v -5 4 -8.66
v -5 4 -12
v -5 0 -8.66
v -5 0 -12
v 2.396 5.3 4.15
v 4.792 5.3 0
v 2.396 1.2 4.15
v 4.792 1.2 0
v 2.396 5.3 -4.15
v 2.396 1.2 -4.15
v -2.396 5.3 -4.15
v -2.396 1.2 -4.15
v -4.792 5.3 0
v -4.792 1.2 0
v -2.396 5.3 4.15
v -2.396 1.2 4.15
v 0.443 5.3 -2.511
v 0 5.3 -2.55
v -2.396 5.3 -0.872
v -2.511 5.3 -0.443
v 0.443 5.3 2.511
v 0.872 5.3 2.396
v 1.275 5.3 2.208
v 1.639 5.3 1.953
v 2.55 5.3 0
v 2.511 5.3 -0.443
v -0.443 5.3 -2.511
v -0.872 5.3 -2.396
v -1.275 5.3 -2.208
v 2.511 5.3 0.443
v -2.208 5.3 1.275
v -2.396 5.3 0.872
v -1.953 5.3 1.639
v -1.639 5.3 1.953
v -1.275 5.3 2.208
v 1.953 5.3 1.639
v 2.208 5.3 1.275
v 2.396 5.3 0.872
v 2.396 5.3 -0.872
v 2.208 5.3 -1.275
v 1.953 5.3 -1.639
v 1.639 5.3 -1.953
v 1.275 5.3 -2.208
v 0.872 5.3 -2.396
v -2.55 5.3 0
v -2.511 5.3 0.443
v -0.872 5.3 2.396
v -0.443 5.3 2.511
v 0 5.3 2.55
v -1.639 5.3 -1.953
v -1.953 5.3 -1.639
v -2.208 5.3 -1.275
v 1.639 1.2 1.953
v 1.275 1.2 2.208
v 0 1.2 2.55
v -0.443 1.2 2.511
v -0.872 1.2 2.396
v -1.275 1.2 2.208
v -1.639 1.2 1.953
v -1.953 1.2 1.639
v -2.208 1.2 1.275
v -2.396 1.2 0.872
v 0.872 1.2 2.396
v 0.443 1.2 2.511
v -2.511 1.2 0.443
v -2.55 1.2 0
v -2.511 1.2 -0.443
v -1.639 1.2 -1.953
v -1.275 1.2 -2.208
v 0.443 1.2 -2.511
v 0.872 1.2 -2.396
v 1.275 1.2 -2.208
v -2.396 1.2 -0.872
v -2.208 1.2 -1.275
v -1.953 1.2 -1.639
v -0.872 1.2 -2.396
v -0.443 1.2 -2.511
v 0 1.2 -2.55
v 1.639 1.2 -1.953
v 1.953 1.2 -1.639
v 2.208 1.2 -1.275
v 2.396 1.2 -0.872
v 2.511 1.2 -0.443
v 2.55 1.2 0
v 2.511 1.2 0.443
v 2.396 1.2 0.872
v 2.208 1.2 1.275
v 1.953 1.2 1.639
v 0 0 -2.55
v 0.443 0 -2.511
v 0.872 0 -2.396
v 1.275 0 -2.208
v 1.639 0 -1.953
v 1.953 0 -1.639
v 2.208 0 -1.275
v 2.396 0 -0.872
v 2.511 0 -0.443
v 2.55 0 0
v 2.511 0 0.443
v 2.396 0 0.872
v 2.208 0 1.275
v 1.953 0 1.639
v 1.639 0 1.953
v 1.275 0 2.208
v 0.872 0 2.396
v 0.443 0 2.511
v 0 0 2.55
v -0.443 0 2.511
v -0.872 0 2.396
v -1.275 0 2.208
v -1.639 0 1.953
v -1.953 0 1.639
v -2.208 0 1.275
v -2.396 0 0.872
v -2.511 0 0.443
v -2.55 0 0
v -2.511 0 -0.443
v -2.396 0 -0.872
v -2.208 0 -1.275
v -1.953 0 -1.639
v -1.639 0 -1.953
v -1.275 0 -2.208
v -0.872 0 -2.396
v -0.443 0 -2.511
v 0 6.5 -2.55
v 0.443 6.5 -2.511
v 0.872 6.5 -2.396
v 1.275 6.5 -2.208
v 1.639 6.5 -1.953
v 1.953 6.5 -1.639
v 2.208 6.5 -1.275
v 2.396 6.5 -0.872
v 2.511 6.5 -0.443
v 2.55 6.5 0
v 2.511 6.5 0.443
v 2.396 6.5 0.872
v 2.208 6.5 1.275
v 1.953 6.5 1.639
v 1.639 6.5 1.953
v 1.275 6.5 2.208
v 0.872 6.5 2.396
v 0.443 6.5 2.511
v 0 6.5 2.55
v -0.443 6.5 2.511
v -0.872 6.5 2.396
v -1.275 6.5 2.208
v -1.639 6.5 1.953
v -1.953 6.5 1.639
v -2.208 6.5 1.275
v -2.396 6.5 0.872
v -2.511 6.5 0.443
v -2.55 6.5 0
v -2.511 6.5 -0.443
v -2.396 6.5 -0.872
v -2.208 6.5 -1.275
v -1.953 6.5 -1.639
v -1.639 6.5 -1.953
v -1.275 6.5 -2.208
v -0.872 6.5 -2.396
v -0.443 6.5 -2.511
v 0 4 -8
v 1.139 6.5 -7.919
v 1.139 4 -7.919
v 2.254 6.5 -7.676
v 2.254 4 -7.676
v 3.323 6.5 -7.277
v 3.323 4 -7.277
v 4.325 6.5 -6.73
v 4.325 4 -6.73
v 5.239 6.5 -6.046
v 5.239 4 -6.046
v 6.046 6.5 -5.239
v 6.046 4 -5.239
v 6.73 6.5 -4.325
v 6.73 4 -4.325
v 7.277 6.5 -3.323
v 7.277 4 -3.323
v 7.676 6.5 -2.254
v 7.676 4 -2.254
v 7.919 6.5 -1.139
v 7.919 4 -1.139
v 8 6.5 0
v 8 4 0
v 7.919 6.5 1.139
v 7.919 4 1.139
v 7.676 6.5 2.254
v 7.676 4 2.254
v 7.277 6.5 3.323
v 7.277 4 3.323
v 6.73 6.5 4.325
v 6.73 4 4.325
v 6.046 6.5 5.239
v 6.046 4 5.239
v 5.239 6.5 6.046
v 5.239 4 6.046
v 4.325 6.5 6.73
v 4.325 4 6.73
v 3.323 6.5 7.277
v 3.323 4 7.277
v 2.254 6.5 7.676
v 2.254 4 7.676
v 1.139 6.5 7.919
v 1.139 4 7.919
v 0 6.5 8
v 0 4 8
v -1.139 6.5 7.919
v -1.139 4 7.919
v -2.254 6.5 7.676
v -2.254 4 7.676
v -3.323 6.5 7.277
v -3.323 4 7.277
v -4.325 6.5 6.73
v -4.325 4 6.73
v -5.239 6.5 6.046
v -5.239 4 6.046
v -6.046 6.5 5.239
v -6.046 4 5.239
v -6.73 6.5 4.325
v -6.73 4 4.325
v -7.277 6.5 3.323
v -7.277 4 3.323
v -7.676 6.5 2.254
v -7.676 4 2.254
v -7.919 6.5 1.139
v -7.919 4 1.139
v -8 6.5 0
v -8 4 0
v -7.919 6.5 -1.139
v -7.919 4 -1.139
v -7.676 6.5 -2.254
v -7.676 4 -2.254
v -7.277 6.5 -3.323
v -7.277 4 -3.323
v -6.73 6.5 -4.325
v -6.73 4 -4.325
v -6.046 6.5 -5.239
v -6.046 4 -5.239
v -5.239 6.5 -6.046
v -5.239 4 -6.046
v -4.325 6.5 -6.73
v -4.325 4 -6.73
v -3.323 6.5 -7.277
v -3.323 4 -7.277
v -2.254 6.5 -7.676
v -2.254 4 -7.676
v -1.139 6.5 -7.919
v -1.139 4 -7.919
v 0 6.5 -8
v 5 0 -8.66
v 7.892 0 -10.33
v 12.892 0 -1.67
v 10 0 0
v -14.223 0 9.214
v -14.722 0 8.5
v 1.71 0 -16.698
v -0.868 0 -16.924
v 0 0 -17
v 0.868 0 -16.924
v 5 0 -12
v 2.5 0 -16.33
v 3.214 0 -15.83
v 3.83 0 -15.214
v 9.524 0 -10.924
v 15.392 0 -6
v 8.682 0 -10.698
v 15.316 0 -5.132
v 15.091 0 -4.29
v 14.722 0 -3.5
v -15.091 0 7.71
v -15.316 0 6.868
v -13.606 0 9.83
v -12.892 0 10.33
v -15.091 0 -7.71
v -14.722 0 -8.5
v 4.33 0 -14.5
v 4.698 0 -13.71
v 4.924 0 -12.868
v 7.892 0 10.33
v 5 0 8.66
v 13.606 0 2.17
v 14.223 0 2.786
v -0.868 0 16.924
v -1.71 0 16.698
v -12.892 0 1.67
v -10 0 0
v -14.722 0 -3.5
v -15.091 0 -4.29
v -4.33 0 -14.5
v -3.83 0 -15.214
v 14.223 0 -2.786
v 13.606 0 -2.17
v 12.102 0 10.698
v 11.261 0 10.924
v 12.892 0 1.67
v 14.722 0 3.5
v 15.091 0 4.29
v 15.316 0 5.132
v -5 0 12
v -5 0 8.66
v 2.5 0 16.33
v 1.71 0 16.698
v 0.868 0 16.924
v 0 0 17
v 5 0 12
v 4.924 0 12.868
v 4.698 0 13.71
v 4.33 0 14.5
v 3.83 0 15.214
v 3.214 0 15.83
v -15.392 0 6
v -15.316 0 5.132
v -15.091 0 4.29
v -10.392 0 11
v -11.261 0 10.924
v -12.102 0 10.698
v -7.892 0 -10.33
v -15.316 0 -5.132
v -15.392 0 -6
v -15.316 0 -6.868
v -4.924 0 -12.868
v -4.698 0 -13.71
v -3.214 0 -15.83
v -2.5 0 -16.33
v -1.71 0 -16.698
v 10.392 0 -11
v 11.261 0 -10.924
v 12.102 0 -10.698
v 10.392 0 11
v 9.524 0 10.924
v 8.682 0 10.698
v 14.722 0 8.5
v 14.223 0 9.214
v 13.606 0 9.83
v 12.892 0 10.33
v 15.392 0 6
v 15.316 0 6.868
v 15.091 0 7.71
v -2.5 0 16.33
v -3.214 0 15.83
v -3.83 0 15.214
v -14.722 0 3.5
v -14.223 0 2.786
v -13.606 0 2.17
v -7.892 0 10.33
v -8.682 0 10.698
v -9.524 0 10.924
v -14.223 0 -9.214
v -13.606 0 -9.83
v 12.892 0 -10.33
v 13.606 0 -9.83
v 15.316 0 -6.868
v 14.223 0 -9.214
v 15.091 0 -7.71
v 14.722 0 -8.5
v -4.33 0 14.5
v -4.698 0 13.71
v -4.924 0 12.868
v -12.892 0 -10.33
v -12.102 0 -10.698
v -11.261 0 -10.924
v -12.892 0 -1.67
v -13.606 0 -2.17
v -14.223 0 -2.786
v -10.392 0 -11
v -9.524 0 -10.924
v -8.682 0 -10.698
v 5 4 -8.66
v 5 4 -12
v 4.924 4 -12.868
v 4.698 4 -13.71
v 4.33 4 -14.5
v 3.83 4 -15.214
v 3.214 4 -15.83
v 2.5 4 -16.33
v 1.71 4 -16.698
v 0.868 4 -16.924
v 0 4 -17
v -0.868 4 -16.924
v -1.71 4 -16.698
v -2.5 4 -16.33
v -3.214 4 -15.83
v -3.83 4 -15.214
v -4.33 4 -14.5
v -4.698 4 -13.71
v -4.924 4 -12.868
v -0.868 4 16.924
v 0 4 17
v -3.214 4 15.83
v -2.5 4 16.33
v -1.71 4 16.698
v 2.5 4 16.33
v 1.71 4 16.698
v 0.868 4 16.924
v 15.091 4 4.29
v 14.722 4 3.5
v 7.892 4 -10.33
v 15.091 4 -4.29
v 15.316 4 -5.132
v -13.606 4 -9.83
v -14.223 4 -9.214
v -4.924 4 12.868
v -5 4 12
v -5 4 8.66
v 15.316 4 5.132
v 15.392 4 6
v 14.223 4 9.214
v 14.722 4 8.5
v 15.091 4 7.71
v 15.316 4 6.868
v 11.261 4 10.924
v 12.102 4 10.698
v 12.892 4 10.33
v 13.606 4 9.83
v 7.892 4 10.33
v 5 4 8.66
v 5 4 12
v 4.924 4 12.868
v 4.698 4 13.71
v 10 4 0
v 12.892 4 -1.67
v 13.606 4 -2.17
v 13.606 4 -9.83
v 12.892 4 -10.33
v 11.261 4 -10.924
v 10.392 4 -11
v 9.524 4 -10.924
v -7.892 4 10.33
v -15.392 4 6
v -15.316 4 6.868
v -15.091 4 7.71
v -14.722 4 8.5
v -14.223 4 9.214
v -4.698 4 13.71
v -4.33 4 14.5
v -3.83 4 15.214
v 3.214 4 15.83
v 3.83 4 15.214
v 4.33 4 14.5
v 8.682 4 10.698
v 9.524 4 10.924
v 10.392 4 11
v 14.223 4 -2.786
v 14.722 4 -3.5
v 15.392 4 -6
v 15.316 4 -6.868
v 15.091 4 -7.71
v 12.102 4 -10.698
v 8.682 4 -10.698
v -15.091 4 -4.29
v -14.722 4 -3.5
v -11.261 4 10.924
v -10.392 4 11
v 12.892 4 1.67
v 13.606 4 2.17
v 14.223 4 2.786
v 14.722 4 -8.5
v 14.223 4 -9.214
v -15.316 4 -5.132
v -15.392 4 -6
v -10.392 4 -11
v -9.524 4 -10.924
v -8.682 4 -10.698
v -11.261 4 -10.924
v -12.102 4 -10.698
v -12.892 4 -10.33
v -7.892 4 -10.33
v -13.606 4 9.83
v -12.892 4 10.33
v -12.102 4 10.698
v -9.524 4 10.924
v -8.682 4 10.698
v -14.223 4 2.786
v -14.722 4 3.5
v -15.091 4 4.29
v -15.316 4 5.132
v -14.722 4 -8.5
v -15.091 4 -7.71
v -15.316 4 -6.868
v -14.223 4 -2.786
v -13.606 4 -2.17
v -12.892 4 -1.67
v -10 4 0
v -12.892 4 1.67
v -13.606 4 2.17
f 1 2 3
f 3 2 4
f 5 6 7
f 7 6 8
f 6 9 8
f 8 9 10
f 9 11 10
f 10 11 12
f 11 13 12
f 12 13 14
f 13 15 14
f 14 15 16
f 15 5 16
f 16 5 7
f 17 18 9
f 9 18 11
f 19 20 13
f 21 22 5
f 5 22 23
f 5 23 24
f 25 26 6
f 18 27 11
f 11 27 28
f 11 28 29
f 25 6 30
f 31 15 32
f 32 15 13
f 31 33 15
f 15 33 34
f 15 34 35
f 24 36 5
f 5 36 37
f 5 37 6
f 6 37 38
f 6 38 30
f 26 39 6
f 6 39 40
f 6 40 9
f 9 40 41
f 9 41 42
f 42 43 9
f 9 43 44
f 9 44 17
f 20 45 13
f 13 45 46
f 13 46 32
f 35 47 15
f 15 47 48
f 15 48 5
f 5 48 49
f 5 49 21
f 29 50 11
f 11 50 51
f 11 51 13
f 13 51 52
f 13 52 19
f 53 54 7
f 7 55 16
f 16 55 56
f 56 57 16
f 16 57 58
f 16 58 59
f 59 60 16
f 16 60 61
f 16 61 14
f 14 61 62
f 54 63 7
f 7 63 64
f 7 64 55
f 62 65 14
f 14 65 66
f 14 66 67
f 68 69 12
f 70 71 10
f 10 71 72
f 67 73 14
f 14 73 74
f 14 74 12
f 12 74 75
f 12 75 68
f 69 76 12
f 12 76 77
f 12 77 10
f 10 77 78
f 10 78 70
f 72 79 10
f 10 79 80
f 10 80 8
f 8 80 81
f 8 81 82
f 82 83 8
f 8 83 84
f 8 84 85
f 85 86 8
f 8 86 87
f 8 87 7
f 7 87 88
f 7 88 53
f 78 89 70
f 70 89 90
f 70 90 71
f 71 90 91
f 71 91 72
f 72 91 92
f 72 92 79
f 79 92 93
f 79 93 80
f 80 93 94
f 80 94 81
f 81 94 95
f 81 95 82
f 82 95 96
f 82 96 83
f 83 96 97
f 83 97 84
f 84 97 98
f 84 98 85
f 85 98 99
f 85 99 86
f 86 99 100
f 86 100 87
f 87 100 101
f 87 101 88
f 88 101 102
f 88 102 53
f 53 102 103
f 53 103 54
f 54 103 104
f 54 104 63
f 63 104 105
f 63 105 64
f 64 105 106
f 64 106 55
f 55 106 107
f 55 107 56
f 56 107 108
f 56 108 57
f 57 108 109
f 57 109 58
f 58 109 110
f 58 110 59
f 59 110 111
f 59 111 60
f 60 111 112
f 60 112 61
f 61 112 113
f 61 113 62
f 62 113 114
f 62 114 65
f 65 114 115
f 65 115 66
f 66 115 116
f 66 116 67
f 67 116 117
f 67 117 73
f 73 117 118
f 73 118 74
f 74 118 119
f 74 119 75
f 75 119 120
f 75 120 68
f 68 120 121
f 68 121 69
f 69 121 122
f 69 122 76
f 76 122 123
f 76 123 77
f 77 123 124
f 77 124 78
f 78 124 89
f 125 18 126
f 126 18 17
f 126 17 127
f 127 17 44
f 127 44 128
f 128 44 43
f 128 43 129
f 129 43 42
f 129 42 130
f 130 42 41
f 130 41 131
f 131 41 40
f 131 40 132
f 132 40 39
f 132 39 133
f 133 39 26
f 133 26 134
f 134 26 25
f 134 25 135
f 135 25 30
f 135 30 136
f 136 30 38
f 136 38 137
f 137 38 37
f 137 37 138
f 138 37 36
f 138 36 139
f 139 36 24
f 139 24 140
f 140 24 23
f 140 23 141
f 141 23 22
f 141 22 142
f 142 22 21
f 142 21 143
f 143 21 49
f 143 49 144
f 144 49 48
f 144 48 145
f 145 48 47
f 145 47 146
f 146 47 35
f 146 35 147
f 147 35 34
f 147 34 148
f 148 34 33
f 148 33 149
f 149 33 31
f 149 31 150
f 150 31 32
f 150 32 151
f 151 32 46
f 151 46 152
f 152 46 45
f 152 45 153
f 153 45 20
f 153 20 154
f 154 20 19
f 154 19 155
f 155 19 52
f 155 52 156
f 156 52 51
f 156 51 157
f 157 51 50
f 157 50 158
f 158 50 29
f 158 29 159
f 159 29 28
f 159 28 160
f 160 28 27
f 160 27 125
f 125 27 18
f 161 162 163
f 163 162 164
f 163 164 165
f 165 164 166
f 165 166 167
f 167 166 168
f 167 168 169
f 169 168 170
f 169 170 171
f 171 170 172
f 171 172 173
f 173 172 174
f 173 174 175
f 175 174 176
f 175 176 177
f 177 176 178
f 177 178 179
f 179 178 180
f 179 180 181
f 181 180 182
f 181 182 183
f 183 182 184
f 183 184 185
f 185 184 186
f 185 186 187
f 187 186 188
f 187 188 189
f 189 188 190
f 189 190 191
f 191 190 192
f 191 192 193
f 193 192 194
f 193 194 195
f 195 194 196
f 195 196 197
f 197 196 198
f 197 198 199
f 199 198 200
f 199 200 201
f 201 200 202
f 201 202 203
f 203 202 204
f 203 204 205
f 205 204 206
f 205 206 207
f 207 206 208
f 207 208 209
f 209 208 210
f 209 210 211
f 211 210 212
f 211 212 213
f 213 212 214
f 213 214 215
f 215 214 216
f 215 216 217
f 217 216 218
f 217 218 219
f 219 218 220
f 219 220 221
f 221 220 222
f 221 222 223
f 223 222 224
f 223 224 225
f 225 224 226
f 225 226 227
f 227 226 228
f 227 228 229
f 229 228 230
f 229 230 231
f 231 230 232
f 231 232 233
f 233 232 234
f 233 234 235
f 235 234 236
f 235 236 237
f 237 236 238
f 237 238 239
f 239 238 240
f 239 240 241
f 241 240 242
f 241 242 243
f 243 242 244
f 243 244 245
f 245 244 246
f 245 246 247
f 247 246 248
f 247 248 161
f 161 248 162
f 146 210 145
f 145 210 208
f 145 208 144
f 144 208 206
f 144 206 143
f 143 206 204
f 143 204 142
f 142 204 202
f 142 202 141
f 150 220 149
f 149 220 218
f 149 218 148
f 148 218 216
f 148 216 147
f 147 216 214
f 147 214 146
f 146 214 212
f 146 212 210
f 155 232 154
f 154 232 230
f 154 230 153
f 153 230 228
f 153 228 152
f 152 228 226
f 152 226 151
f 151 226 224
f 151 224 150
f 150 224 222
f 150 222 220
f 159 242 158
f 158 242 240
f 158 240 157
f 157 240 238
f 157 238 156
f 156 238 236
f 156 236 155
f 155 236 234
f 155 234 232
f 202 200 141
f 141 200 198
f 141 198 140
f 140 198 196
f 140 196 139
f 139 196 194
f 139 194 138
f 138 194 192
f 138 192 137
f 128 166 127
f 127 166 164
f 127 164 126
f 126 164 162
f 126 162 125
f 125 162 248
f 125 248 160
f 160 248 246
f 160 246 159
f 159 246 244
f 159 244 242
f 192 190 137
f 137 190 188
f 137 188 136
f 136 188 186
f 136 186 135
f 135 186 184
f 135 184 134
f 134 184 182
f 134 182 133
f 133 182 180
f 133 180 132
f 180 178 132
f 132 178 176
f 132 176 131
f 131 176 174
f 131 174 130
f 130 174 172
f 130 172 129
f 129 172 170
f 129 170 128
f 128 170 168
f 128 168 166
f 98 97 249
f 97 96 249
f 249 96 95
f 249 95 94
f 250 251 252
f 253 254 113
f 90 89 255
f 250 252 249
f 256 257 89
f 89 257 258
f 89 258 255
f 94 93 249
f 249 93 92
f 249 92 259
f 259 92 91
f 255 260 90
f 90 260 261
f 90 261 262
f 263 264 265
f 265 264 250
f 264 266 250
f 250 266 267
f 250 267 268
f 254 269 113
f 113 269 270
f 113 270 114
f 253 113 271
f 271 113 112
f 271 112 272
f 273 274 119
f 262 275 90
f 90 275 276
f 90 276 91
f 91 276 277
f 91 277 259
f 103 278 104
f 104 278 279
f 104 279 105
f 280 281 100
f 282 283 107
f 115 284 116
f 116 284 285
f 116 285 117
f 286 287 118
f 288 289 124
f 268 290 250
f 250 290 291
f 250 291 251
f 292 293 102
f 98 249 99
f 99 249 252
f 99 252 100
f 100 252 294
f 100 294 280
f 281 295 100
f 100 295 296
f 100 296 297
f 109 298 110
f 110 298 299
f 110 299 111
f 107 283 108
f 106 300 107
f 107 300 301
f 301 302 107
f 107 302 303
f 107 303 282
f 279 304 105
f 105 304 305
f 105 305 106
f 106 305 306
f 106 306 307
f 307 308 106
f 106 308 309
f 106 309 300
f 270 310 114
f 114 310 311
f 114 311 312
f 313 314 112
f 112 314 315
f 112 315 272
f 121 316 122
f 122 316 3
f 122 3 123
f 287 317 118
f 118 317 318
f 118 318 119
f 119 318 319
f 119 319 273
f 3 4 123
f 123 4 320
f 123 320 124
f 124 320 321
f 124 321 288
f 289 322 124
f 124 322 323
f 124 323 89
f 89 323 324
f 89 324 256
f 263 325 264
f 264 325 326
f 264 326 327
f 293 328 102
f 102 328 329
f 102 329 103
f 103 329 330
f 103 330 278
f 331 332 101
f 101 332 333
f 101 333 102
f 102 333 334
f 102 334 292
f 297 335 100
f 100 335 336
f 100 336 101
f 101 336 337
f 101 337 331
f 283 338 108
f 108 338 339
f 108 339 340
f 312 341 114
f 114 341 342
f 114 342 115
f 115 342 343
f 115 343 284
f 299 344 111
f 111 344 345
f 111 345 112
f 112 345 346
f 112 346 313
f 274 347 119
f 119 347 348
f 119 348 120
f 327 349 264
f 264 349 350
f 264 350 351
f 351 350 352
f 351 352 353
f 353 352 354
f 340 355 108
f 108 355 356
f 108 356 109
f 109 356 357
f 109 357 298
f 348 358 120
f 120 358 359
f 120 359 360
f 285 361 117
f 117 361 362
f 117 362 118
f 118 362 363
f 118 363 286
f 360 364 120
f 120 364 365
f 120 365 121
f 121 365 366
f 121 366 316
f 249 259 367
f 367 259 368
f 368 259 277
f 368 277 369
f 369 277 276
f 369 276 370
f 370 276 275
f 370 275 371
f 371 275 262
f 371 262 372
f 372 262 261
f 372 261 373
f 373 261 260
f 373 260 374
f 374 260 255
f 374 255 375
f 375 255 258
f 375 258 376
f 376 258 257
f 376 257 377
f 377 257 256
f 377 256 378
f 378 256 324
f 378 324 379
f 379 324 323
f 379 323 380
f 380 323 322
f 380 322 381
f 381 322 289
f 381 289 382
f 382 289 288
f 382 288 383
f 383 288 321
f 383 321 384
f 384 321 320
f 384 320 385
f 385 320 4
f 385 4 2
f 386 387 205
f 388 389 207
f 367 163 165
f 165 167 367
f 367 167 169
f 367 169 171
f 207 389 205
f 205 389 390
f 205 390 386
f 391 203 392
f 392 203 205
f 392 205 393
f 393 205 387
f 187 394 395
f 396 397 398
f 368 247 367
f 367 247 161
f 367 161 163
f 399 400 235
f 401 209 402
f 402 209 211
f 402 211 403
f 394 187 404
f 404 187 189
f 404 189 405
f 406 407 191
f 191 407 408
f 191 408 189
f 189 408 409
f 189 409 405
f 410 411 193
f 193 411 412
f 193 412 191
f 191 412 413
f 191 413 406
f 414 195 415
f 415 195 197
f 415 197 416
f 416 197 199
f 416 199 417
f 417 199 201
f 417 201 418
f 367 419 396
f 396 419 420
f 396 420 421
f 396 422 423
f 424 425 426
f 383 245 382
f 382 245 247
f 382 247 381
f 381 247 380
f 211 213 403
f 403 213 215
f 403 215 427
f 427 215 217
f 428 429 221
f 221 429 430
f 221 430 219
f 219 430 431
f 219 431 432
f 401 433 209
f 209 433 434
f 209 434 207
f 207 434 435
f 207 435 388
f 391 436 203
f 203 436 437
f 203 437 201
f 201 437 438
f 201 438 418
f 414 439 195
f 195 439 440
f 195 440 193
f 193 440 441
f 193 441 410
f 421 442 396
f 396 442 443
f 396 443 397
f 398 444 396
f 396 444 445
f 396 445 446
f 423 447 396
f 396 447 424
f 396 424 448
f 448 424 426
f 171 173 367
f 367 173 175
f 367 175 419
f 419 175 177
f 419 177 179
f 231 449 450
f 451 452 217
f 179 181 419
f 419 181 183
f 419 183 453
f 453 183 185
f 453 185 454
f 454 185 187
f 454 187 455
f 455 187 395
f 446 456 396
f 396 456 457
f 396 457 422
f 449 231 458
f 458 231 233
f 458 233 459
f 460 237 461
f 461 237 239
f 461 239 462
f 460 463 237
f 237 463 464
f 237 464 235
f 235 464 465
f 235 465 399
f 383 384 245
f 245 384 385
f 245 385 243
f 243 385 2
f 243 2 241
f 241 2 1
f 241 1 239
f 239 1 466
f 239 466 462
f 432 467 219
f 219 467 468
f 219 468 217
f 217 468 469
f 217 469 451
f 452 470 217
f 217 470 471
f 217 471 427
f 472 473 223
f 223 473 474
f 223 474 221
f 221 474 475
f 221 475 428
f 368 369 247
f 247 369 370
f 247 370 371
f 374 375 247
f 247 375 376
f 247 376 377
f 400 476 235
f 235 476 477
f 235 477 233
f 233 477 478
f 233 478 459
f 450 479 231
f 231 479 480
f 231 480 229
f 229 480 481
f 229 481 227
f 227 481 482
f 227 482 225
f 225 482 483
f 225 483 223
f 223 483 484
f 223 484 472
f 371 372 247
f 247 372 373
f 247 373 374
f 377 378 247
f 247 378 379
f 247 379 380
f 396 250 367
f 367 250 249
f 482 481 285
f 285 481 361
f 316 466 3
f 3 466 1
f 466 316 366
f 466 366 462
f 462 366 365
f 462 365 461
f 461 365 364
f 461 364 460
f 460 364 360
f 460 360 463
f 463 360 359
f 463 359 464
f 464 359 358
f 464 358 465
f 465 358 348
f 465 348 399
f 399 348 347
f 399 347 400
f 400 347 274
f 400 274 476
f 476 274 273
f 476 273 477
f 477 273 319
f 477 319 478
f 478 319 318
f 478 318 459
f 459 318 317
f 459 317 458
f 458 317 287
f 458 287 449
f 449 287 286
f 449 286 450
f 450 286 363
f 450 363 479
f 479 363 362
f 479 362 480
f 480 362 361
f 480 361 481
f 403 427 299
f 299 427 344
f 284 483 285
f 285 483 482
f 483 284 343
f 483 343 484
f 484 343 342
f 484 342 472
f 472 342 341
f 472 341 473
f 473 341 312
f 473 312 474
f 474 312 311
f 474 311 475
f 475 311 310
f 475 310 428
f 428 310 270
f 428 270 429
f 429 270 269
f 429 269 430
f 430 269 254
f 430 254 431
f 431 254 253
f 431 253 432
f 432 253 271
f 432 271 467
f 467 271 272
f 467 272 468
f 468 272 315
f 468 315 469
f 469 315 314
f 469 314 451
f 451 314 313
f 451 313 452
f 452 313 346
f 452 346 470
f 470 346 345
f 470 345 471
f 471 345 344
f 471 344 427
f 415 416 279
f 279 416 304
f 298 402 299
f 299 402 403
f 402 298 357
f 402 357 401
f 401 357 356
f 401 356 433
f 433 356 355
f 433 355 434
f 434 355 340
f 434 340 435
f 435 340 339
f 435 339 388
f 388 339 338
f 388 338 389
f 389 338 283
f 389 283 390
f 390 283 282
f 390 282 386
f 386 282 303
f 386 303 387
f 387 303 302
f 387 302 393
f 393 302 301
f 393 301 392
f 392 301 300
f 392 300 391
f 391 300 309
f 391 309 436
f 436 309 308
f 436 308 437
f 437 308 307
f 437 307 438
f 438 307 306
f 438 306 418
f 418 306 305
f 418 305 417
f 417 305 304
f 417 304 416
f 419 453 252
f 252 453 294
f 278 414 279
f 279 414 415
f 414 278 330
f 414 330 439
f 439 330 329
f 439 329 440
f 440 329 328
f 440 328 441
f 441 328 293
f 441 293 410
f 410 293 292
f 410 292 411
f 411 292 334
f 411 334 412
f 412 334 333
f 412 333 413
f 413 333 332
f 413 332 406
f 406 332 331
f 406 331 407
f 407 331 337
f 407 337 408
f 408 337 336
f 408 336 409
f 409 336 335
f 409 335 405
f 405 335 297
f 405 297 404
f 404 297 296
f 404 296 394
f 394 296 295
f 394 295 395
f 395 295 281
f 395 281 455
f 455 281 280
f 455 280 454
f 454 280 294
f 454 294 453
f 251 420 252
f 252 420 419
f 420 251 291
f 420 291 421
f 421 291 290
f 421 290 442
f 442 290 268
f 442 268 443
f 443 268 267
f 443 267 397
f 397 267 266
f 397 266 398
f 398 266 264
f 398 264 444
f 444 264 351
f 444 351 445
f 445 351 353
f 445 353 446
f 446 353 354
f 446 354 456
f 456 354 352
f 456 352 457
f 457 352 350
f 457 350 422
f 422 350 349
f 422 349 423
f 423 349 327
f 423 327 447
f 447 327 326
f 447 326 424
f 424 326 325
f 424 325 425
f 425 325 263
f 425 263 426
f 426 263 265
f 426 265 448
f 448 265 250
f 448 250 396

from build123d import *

# Parameters (mm, degrees)
SKETCH1_R           = 8
BOSS_EXTRUDE1_DEPTH = 6.5
CUT_EXTRUDE1_START  = 1.2
CUT_EXTRUDE1_DEPTH  = 4.1
CUT_EXTRUDE2_REACH  = 15.048
SKETCH5_R           = 2.55
BOSS_EXTRUDE4_DEPTH = 4
CIRPATTERN1_COUNT   = 6


with BuildPart() as part:
    # Sketch1 → Boss-Extrude1 (new body)
    with BuildSketch(Plane(origin=(0, 0, 0), x_dir=(1, 0, 0), z_dir=(0, 1, 0))):
        with Locations(Location((0, 0, 0), (0, 0, 90))):
            Circle(SKETCH1_R)
    extrude(amount=BOSS_EXTRUDE1_DEPTH)

    # Sketch4 → Cut-Extrude1 (cut)
    with BuildSketch(Plane(origin=(0, 0, 0), x_dir=(1, 0, 0), z_dir=(0, 1, 0)).offset(CUT_EXTRUDE1_START)):
        Polygon((4.792007234, 0), (2.396003617, 4.15), (-2.396003617, 4.15), (-4.792007234, 0), (-2.396003617, -4.15), (2.396003617, -4.15), align=None)
    extrude(amount=CUT_EXTRUDE1_DEPTH, mode=Mode.SUBTRACT)

    # Cut-Extrude2: up to this face of the body (flat: up to its plane)
    cut_extrude2_end = Plane(part.part.faces().sort_by_distance((0, 6.5, 0))[0])
    # Sketch5 → Cut-Extrude2 (cut, up to the picked face)
    with BuildSketch(Plane(origin=(0, 0, 0), x_dir=(1, 0, 0), z_dir=(0, 1, 0)), mode=Mode.PRIVATE) as cut_extrude2_sk1:
        with Locations(Location((0, 0, 0), (0, 0, 90))):
            Circle(SKETCH5_R)
    cut_extrude2_tool1 = split(extrude(cut_extrude2_sk1.sketch, amount=CUT_EXTRUDE2_REACH, mode=Mode.PRIVATE), bisect_by=cut_extrude2_end, keep=Keep.BOTH, mode=Mode.PRIVATE)
    add(cut_extrude2_tool1.solids().sort_by(Axis((0, 0, 0), (0, 1, 0)))[0], mode=Mode.SUBTRACT)

    # Sketch6 → Boss-Extrude4 (add)
    with BuildSketch(Plane(origin=(0, 0, 0), x_dir=(1, 0, 0), z_dir=(0, 1, 0))):
        with BuildLine():
            Line((-5, 12), (-5, 6.244997998))
            ThreePointArc((-5, 6.244997998), (0, 8), (5, 6.244997998))
            Line((5, 6.244997998), (5, 12))
            ThreePointArc((5, 12), (0, 17), (-5, 12))
        make_face()
    boss_extrude4 = extrude(amount=BOSS_EXTRUDE4_DEPTH)

    # CirPattern1: Boss-Extrude4 ×6 about axis
    cirpattern1_axis = Axis((0, 0, 0), (0, 1, 0))
    for i in range(1, CIRPATTERN1_COUNT):
        add(boss_extrude4.rotate(cirpattern1_axis, i * 360 / CIRPATTERN1_COUNT))


solid = part.part
